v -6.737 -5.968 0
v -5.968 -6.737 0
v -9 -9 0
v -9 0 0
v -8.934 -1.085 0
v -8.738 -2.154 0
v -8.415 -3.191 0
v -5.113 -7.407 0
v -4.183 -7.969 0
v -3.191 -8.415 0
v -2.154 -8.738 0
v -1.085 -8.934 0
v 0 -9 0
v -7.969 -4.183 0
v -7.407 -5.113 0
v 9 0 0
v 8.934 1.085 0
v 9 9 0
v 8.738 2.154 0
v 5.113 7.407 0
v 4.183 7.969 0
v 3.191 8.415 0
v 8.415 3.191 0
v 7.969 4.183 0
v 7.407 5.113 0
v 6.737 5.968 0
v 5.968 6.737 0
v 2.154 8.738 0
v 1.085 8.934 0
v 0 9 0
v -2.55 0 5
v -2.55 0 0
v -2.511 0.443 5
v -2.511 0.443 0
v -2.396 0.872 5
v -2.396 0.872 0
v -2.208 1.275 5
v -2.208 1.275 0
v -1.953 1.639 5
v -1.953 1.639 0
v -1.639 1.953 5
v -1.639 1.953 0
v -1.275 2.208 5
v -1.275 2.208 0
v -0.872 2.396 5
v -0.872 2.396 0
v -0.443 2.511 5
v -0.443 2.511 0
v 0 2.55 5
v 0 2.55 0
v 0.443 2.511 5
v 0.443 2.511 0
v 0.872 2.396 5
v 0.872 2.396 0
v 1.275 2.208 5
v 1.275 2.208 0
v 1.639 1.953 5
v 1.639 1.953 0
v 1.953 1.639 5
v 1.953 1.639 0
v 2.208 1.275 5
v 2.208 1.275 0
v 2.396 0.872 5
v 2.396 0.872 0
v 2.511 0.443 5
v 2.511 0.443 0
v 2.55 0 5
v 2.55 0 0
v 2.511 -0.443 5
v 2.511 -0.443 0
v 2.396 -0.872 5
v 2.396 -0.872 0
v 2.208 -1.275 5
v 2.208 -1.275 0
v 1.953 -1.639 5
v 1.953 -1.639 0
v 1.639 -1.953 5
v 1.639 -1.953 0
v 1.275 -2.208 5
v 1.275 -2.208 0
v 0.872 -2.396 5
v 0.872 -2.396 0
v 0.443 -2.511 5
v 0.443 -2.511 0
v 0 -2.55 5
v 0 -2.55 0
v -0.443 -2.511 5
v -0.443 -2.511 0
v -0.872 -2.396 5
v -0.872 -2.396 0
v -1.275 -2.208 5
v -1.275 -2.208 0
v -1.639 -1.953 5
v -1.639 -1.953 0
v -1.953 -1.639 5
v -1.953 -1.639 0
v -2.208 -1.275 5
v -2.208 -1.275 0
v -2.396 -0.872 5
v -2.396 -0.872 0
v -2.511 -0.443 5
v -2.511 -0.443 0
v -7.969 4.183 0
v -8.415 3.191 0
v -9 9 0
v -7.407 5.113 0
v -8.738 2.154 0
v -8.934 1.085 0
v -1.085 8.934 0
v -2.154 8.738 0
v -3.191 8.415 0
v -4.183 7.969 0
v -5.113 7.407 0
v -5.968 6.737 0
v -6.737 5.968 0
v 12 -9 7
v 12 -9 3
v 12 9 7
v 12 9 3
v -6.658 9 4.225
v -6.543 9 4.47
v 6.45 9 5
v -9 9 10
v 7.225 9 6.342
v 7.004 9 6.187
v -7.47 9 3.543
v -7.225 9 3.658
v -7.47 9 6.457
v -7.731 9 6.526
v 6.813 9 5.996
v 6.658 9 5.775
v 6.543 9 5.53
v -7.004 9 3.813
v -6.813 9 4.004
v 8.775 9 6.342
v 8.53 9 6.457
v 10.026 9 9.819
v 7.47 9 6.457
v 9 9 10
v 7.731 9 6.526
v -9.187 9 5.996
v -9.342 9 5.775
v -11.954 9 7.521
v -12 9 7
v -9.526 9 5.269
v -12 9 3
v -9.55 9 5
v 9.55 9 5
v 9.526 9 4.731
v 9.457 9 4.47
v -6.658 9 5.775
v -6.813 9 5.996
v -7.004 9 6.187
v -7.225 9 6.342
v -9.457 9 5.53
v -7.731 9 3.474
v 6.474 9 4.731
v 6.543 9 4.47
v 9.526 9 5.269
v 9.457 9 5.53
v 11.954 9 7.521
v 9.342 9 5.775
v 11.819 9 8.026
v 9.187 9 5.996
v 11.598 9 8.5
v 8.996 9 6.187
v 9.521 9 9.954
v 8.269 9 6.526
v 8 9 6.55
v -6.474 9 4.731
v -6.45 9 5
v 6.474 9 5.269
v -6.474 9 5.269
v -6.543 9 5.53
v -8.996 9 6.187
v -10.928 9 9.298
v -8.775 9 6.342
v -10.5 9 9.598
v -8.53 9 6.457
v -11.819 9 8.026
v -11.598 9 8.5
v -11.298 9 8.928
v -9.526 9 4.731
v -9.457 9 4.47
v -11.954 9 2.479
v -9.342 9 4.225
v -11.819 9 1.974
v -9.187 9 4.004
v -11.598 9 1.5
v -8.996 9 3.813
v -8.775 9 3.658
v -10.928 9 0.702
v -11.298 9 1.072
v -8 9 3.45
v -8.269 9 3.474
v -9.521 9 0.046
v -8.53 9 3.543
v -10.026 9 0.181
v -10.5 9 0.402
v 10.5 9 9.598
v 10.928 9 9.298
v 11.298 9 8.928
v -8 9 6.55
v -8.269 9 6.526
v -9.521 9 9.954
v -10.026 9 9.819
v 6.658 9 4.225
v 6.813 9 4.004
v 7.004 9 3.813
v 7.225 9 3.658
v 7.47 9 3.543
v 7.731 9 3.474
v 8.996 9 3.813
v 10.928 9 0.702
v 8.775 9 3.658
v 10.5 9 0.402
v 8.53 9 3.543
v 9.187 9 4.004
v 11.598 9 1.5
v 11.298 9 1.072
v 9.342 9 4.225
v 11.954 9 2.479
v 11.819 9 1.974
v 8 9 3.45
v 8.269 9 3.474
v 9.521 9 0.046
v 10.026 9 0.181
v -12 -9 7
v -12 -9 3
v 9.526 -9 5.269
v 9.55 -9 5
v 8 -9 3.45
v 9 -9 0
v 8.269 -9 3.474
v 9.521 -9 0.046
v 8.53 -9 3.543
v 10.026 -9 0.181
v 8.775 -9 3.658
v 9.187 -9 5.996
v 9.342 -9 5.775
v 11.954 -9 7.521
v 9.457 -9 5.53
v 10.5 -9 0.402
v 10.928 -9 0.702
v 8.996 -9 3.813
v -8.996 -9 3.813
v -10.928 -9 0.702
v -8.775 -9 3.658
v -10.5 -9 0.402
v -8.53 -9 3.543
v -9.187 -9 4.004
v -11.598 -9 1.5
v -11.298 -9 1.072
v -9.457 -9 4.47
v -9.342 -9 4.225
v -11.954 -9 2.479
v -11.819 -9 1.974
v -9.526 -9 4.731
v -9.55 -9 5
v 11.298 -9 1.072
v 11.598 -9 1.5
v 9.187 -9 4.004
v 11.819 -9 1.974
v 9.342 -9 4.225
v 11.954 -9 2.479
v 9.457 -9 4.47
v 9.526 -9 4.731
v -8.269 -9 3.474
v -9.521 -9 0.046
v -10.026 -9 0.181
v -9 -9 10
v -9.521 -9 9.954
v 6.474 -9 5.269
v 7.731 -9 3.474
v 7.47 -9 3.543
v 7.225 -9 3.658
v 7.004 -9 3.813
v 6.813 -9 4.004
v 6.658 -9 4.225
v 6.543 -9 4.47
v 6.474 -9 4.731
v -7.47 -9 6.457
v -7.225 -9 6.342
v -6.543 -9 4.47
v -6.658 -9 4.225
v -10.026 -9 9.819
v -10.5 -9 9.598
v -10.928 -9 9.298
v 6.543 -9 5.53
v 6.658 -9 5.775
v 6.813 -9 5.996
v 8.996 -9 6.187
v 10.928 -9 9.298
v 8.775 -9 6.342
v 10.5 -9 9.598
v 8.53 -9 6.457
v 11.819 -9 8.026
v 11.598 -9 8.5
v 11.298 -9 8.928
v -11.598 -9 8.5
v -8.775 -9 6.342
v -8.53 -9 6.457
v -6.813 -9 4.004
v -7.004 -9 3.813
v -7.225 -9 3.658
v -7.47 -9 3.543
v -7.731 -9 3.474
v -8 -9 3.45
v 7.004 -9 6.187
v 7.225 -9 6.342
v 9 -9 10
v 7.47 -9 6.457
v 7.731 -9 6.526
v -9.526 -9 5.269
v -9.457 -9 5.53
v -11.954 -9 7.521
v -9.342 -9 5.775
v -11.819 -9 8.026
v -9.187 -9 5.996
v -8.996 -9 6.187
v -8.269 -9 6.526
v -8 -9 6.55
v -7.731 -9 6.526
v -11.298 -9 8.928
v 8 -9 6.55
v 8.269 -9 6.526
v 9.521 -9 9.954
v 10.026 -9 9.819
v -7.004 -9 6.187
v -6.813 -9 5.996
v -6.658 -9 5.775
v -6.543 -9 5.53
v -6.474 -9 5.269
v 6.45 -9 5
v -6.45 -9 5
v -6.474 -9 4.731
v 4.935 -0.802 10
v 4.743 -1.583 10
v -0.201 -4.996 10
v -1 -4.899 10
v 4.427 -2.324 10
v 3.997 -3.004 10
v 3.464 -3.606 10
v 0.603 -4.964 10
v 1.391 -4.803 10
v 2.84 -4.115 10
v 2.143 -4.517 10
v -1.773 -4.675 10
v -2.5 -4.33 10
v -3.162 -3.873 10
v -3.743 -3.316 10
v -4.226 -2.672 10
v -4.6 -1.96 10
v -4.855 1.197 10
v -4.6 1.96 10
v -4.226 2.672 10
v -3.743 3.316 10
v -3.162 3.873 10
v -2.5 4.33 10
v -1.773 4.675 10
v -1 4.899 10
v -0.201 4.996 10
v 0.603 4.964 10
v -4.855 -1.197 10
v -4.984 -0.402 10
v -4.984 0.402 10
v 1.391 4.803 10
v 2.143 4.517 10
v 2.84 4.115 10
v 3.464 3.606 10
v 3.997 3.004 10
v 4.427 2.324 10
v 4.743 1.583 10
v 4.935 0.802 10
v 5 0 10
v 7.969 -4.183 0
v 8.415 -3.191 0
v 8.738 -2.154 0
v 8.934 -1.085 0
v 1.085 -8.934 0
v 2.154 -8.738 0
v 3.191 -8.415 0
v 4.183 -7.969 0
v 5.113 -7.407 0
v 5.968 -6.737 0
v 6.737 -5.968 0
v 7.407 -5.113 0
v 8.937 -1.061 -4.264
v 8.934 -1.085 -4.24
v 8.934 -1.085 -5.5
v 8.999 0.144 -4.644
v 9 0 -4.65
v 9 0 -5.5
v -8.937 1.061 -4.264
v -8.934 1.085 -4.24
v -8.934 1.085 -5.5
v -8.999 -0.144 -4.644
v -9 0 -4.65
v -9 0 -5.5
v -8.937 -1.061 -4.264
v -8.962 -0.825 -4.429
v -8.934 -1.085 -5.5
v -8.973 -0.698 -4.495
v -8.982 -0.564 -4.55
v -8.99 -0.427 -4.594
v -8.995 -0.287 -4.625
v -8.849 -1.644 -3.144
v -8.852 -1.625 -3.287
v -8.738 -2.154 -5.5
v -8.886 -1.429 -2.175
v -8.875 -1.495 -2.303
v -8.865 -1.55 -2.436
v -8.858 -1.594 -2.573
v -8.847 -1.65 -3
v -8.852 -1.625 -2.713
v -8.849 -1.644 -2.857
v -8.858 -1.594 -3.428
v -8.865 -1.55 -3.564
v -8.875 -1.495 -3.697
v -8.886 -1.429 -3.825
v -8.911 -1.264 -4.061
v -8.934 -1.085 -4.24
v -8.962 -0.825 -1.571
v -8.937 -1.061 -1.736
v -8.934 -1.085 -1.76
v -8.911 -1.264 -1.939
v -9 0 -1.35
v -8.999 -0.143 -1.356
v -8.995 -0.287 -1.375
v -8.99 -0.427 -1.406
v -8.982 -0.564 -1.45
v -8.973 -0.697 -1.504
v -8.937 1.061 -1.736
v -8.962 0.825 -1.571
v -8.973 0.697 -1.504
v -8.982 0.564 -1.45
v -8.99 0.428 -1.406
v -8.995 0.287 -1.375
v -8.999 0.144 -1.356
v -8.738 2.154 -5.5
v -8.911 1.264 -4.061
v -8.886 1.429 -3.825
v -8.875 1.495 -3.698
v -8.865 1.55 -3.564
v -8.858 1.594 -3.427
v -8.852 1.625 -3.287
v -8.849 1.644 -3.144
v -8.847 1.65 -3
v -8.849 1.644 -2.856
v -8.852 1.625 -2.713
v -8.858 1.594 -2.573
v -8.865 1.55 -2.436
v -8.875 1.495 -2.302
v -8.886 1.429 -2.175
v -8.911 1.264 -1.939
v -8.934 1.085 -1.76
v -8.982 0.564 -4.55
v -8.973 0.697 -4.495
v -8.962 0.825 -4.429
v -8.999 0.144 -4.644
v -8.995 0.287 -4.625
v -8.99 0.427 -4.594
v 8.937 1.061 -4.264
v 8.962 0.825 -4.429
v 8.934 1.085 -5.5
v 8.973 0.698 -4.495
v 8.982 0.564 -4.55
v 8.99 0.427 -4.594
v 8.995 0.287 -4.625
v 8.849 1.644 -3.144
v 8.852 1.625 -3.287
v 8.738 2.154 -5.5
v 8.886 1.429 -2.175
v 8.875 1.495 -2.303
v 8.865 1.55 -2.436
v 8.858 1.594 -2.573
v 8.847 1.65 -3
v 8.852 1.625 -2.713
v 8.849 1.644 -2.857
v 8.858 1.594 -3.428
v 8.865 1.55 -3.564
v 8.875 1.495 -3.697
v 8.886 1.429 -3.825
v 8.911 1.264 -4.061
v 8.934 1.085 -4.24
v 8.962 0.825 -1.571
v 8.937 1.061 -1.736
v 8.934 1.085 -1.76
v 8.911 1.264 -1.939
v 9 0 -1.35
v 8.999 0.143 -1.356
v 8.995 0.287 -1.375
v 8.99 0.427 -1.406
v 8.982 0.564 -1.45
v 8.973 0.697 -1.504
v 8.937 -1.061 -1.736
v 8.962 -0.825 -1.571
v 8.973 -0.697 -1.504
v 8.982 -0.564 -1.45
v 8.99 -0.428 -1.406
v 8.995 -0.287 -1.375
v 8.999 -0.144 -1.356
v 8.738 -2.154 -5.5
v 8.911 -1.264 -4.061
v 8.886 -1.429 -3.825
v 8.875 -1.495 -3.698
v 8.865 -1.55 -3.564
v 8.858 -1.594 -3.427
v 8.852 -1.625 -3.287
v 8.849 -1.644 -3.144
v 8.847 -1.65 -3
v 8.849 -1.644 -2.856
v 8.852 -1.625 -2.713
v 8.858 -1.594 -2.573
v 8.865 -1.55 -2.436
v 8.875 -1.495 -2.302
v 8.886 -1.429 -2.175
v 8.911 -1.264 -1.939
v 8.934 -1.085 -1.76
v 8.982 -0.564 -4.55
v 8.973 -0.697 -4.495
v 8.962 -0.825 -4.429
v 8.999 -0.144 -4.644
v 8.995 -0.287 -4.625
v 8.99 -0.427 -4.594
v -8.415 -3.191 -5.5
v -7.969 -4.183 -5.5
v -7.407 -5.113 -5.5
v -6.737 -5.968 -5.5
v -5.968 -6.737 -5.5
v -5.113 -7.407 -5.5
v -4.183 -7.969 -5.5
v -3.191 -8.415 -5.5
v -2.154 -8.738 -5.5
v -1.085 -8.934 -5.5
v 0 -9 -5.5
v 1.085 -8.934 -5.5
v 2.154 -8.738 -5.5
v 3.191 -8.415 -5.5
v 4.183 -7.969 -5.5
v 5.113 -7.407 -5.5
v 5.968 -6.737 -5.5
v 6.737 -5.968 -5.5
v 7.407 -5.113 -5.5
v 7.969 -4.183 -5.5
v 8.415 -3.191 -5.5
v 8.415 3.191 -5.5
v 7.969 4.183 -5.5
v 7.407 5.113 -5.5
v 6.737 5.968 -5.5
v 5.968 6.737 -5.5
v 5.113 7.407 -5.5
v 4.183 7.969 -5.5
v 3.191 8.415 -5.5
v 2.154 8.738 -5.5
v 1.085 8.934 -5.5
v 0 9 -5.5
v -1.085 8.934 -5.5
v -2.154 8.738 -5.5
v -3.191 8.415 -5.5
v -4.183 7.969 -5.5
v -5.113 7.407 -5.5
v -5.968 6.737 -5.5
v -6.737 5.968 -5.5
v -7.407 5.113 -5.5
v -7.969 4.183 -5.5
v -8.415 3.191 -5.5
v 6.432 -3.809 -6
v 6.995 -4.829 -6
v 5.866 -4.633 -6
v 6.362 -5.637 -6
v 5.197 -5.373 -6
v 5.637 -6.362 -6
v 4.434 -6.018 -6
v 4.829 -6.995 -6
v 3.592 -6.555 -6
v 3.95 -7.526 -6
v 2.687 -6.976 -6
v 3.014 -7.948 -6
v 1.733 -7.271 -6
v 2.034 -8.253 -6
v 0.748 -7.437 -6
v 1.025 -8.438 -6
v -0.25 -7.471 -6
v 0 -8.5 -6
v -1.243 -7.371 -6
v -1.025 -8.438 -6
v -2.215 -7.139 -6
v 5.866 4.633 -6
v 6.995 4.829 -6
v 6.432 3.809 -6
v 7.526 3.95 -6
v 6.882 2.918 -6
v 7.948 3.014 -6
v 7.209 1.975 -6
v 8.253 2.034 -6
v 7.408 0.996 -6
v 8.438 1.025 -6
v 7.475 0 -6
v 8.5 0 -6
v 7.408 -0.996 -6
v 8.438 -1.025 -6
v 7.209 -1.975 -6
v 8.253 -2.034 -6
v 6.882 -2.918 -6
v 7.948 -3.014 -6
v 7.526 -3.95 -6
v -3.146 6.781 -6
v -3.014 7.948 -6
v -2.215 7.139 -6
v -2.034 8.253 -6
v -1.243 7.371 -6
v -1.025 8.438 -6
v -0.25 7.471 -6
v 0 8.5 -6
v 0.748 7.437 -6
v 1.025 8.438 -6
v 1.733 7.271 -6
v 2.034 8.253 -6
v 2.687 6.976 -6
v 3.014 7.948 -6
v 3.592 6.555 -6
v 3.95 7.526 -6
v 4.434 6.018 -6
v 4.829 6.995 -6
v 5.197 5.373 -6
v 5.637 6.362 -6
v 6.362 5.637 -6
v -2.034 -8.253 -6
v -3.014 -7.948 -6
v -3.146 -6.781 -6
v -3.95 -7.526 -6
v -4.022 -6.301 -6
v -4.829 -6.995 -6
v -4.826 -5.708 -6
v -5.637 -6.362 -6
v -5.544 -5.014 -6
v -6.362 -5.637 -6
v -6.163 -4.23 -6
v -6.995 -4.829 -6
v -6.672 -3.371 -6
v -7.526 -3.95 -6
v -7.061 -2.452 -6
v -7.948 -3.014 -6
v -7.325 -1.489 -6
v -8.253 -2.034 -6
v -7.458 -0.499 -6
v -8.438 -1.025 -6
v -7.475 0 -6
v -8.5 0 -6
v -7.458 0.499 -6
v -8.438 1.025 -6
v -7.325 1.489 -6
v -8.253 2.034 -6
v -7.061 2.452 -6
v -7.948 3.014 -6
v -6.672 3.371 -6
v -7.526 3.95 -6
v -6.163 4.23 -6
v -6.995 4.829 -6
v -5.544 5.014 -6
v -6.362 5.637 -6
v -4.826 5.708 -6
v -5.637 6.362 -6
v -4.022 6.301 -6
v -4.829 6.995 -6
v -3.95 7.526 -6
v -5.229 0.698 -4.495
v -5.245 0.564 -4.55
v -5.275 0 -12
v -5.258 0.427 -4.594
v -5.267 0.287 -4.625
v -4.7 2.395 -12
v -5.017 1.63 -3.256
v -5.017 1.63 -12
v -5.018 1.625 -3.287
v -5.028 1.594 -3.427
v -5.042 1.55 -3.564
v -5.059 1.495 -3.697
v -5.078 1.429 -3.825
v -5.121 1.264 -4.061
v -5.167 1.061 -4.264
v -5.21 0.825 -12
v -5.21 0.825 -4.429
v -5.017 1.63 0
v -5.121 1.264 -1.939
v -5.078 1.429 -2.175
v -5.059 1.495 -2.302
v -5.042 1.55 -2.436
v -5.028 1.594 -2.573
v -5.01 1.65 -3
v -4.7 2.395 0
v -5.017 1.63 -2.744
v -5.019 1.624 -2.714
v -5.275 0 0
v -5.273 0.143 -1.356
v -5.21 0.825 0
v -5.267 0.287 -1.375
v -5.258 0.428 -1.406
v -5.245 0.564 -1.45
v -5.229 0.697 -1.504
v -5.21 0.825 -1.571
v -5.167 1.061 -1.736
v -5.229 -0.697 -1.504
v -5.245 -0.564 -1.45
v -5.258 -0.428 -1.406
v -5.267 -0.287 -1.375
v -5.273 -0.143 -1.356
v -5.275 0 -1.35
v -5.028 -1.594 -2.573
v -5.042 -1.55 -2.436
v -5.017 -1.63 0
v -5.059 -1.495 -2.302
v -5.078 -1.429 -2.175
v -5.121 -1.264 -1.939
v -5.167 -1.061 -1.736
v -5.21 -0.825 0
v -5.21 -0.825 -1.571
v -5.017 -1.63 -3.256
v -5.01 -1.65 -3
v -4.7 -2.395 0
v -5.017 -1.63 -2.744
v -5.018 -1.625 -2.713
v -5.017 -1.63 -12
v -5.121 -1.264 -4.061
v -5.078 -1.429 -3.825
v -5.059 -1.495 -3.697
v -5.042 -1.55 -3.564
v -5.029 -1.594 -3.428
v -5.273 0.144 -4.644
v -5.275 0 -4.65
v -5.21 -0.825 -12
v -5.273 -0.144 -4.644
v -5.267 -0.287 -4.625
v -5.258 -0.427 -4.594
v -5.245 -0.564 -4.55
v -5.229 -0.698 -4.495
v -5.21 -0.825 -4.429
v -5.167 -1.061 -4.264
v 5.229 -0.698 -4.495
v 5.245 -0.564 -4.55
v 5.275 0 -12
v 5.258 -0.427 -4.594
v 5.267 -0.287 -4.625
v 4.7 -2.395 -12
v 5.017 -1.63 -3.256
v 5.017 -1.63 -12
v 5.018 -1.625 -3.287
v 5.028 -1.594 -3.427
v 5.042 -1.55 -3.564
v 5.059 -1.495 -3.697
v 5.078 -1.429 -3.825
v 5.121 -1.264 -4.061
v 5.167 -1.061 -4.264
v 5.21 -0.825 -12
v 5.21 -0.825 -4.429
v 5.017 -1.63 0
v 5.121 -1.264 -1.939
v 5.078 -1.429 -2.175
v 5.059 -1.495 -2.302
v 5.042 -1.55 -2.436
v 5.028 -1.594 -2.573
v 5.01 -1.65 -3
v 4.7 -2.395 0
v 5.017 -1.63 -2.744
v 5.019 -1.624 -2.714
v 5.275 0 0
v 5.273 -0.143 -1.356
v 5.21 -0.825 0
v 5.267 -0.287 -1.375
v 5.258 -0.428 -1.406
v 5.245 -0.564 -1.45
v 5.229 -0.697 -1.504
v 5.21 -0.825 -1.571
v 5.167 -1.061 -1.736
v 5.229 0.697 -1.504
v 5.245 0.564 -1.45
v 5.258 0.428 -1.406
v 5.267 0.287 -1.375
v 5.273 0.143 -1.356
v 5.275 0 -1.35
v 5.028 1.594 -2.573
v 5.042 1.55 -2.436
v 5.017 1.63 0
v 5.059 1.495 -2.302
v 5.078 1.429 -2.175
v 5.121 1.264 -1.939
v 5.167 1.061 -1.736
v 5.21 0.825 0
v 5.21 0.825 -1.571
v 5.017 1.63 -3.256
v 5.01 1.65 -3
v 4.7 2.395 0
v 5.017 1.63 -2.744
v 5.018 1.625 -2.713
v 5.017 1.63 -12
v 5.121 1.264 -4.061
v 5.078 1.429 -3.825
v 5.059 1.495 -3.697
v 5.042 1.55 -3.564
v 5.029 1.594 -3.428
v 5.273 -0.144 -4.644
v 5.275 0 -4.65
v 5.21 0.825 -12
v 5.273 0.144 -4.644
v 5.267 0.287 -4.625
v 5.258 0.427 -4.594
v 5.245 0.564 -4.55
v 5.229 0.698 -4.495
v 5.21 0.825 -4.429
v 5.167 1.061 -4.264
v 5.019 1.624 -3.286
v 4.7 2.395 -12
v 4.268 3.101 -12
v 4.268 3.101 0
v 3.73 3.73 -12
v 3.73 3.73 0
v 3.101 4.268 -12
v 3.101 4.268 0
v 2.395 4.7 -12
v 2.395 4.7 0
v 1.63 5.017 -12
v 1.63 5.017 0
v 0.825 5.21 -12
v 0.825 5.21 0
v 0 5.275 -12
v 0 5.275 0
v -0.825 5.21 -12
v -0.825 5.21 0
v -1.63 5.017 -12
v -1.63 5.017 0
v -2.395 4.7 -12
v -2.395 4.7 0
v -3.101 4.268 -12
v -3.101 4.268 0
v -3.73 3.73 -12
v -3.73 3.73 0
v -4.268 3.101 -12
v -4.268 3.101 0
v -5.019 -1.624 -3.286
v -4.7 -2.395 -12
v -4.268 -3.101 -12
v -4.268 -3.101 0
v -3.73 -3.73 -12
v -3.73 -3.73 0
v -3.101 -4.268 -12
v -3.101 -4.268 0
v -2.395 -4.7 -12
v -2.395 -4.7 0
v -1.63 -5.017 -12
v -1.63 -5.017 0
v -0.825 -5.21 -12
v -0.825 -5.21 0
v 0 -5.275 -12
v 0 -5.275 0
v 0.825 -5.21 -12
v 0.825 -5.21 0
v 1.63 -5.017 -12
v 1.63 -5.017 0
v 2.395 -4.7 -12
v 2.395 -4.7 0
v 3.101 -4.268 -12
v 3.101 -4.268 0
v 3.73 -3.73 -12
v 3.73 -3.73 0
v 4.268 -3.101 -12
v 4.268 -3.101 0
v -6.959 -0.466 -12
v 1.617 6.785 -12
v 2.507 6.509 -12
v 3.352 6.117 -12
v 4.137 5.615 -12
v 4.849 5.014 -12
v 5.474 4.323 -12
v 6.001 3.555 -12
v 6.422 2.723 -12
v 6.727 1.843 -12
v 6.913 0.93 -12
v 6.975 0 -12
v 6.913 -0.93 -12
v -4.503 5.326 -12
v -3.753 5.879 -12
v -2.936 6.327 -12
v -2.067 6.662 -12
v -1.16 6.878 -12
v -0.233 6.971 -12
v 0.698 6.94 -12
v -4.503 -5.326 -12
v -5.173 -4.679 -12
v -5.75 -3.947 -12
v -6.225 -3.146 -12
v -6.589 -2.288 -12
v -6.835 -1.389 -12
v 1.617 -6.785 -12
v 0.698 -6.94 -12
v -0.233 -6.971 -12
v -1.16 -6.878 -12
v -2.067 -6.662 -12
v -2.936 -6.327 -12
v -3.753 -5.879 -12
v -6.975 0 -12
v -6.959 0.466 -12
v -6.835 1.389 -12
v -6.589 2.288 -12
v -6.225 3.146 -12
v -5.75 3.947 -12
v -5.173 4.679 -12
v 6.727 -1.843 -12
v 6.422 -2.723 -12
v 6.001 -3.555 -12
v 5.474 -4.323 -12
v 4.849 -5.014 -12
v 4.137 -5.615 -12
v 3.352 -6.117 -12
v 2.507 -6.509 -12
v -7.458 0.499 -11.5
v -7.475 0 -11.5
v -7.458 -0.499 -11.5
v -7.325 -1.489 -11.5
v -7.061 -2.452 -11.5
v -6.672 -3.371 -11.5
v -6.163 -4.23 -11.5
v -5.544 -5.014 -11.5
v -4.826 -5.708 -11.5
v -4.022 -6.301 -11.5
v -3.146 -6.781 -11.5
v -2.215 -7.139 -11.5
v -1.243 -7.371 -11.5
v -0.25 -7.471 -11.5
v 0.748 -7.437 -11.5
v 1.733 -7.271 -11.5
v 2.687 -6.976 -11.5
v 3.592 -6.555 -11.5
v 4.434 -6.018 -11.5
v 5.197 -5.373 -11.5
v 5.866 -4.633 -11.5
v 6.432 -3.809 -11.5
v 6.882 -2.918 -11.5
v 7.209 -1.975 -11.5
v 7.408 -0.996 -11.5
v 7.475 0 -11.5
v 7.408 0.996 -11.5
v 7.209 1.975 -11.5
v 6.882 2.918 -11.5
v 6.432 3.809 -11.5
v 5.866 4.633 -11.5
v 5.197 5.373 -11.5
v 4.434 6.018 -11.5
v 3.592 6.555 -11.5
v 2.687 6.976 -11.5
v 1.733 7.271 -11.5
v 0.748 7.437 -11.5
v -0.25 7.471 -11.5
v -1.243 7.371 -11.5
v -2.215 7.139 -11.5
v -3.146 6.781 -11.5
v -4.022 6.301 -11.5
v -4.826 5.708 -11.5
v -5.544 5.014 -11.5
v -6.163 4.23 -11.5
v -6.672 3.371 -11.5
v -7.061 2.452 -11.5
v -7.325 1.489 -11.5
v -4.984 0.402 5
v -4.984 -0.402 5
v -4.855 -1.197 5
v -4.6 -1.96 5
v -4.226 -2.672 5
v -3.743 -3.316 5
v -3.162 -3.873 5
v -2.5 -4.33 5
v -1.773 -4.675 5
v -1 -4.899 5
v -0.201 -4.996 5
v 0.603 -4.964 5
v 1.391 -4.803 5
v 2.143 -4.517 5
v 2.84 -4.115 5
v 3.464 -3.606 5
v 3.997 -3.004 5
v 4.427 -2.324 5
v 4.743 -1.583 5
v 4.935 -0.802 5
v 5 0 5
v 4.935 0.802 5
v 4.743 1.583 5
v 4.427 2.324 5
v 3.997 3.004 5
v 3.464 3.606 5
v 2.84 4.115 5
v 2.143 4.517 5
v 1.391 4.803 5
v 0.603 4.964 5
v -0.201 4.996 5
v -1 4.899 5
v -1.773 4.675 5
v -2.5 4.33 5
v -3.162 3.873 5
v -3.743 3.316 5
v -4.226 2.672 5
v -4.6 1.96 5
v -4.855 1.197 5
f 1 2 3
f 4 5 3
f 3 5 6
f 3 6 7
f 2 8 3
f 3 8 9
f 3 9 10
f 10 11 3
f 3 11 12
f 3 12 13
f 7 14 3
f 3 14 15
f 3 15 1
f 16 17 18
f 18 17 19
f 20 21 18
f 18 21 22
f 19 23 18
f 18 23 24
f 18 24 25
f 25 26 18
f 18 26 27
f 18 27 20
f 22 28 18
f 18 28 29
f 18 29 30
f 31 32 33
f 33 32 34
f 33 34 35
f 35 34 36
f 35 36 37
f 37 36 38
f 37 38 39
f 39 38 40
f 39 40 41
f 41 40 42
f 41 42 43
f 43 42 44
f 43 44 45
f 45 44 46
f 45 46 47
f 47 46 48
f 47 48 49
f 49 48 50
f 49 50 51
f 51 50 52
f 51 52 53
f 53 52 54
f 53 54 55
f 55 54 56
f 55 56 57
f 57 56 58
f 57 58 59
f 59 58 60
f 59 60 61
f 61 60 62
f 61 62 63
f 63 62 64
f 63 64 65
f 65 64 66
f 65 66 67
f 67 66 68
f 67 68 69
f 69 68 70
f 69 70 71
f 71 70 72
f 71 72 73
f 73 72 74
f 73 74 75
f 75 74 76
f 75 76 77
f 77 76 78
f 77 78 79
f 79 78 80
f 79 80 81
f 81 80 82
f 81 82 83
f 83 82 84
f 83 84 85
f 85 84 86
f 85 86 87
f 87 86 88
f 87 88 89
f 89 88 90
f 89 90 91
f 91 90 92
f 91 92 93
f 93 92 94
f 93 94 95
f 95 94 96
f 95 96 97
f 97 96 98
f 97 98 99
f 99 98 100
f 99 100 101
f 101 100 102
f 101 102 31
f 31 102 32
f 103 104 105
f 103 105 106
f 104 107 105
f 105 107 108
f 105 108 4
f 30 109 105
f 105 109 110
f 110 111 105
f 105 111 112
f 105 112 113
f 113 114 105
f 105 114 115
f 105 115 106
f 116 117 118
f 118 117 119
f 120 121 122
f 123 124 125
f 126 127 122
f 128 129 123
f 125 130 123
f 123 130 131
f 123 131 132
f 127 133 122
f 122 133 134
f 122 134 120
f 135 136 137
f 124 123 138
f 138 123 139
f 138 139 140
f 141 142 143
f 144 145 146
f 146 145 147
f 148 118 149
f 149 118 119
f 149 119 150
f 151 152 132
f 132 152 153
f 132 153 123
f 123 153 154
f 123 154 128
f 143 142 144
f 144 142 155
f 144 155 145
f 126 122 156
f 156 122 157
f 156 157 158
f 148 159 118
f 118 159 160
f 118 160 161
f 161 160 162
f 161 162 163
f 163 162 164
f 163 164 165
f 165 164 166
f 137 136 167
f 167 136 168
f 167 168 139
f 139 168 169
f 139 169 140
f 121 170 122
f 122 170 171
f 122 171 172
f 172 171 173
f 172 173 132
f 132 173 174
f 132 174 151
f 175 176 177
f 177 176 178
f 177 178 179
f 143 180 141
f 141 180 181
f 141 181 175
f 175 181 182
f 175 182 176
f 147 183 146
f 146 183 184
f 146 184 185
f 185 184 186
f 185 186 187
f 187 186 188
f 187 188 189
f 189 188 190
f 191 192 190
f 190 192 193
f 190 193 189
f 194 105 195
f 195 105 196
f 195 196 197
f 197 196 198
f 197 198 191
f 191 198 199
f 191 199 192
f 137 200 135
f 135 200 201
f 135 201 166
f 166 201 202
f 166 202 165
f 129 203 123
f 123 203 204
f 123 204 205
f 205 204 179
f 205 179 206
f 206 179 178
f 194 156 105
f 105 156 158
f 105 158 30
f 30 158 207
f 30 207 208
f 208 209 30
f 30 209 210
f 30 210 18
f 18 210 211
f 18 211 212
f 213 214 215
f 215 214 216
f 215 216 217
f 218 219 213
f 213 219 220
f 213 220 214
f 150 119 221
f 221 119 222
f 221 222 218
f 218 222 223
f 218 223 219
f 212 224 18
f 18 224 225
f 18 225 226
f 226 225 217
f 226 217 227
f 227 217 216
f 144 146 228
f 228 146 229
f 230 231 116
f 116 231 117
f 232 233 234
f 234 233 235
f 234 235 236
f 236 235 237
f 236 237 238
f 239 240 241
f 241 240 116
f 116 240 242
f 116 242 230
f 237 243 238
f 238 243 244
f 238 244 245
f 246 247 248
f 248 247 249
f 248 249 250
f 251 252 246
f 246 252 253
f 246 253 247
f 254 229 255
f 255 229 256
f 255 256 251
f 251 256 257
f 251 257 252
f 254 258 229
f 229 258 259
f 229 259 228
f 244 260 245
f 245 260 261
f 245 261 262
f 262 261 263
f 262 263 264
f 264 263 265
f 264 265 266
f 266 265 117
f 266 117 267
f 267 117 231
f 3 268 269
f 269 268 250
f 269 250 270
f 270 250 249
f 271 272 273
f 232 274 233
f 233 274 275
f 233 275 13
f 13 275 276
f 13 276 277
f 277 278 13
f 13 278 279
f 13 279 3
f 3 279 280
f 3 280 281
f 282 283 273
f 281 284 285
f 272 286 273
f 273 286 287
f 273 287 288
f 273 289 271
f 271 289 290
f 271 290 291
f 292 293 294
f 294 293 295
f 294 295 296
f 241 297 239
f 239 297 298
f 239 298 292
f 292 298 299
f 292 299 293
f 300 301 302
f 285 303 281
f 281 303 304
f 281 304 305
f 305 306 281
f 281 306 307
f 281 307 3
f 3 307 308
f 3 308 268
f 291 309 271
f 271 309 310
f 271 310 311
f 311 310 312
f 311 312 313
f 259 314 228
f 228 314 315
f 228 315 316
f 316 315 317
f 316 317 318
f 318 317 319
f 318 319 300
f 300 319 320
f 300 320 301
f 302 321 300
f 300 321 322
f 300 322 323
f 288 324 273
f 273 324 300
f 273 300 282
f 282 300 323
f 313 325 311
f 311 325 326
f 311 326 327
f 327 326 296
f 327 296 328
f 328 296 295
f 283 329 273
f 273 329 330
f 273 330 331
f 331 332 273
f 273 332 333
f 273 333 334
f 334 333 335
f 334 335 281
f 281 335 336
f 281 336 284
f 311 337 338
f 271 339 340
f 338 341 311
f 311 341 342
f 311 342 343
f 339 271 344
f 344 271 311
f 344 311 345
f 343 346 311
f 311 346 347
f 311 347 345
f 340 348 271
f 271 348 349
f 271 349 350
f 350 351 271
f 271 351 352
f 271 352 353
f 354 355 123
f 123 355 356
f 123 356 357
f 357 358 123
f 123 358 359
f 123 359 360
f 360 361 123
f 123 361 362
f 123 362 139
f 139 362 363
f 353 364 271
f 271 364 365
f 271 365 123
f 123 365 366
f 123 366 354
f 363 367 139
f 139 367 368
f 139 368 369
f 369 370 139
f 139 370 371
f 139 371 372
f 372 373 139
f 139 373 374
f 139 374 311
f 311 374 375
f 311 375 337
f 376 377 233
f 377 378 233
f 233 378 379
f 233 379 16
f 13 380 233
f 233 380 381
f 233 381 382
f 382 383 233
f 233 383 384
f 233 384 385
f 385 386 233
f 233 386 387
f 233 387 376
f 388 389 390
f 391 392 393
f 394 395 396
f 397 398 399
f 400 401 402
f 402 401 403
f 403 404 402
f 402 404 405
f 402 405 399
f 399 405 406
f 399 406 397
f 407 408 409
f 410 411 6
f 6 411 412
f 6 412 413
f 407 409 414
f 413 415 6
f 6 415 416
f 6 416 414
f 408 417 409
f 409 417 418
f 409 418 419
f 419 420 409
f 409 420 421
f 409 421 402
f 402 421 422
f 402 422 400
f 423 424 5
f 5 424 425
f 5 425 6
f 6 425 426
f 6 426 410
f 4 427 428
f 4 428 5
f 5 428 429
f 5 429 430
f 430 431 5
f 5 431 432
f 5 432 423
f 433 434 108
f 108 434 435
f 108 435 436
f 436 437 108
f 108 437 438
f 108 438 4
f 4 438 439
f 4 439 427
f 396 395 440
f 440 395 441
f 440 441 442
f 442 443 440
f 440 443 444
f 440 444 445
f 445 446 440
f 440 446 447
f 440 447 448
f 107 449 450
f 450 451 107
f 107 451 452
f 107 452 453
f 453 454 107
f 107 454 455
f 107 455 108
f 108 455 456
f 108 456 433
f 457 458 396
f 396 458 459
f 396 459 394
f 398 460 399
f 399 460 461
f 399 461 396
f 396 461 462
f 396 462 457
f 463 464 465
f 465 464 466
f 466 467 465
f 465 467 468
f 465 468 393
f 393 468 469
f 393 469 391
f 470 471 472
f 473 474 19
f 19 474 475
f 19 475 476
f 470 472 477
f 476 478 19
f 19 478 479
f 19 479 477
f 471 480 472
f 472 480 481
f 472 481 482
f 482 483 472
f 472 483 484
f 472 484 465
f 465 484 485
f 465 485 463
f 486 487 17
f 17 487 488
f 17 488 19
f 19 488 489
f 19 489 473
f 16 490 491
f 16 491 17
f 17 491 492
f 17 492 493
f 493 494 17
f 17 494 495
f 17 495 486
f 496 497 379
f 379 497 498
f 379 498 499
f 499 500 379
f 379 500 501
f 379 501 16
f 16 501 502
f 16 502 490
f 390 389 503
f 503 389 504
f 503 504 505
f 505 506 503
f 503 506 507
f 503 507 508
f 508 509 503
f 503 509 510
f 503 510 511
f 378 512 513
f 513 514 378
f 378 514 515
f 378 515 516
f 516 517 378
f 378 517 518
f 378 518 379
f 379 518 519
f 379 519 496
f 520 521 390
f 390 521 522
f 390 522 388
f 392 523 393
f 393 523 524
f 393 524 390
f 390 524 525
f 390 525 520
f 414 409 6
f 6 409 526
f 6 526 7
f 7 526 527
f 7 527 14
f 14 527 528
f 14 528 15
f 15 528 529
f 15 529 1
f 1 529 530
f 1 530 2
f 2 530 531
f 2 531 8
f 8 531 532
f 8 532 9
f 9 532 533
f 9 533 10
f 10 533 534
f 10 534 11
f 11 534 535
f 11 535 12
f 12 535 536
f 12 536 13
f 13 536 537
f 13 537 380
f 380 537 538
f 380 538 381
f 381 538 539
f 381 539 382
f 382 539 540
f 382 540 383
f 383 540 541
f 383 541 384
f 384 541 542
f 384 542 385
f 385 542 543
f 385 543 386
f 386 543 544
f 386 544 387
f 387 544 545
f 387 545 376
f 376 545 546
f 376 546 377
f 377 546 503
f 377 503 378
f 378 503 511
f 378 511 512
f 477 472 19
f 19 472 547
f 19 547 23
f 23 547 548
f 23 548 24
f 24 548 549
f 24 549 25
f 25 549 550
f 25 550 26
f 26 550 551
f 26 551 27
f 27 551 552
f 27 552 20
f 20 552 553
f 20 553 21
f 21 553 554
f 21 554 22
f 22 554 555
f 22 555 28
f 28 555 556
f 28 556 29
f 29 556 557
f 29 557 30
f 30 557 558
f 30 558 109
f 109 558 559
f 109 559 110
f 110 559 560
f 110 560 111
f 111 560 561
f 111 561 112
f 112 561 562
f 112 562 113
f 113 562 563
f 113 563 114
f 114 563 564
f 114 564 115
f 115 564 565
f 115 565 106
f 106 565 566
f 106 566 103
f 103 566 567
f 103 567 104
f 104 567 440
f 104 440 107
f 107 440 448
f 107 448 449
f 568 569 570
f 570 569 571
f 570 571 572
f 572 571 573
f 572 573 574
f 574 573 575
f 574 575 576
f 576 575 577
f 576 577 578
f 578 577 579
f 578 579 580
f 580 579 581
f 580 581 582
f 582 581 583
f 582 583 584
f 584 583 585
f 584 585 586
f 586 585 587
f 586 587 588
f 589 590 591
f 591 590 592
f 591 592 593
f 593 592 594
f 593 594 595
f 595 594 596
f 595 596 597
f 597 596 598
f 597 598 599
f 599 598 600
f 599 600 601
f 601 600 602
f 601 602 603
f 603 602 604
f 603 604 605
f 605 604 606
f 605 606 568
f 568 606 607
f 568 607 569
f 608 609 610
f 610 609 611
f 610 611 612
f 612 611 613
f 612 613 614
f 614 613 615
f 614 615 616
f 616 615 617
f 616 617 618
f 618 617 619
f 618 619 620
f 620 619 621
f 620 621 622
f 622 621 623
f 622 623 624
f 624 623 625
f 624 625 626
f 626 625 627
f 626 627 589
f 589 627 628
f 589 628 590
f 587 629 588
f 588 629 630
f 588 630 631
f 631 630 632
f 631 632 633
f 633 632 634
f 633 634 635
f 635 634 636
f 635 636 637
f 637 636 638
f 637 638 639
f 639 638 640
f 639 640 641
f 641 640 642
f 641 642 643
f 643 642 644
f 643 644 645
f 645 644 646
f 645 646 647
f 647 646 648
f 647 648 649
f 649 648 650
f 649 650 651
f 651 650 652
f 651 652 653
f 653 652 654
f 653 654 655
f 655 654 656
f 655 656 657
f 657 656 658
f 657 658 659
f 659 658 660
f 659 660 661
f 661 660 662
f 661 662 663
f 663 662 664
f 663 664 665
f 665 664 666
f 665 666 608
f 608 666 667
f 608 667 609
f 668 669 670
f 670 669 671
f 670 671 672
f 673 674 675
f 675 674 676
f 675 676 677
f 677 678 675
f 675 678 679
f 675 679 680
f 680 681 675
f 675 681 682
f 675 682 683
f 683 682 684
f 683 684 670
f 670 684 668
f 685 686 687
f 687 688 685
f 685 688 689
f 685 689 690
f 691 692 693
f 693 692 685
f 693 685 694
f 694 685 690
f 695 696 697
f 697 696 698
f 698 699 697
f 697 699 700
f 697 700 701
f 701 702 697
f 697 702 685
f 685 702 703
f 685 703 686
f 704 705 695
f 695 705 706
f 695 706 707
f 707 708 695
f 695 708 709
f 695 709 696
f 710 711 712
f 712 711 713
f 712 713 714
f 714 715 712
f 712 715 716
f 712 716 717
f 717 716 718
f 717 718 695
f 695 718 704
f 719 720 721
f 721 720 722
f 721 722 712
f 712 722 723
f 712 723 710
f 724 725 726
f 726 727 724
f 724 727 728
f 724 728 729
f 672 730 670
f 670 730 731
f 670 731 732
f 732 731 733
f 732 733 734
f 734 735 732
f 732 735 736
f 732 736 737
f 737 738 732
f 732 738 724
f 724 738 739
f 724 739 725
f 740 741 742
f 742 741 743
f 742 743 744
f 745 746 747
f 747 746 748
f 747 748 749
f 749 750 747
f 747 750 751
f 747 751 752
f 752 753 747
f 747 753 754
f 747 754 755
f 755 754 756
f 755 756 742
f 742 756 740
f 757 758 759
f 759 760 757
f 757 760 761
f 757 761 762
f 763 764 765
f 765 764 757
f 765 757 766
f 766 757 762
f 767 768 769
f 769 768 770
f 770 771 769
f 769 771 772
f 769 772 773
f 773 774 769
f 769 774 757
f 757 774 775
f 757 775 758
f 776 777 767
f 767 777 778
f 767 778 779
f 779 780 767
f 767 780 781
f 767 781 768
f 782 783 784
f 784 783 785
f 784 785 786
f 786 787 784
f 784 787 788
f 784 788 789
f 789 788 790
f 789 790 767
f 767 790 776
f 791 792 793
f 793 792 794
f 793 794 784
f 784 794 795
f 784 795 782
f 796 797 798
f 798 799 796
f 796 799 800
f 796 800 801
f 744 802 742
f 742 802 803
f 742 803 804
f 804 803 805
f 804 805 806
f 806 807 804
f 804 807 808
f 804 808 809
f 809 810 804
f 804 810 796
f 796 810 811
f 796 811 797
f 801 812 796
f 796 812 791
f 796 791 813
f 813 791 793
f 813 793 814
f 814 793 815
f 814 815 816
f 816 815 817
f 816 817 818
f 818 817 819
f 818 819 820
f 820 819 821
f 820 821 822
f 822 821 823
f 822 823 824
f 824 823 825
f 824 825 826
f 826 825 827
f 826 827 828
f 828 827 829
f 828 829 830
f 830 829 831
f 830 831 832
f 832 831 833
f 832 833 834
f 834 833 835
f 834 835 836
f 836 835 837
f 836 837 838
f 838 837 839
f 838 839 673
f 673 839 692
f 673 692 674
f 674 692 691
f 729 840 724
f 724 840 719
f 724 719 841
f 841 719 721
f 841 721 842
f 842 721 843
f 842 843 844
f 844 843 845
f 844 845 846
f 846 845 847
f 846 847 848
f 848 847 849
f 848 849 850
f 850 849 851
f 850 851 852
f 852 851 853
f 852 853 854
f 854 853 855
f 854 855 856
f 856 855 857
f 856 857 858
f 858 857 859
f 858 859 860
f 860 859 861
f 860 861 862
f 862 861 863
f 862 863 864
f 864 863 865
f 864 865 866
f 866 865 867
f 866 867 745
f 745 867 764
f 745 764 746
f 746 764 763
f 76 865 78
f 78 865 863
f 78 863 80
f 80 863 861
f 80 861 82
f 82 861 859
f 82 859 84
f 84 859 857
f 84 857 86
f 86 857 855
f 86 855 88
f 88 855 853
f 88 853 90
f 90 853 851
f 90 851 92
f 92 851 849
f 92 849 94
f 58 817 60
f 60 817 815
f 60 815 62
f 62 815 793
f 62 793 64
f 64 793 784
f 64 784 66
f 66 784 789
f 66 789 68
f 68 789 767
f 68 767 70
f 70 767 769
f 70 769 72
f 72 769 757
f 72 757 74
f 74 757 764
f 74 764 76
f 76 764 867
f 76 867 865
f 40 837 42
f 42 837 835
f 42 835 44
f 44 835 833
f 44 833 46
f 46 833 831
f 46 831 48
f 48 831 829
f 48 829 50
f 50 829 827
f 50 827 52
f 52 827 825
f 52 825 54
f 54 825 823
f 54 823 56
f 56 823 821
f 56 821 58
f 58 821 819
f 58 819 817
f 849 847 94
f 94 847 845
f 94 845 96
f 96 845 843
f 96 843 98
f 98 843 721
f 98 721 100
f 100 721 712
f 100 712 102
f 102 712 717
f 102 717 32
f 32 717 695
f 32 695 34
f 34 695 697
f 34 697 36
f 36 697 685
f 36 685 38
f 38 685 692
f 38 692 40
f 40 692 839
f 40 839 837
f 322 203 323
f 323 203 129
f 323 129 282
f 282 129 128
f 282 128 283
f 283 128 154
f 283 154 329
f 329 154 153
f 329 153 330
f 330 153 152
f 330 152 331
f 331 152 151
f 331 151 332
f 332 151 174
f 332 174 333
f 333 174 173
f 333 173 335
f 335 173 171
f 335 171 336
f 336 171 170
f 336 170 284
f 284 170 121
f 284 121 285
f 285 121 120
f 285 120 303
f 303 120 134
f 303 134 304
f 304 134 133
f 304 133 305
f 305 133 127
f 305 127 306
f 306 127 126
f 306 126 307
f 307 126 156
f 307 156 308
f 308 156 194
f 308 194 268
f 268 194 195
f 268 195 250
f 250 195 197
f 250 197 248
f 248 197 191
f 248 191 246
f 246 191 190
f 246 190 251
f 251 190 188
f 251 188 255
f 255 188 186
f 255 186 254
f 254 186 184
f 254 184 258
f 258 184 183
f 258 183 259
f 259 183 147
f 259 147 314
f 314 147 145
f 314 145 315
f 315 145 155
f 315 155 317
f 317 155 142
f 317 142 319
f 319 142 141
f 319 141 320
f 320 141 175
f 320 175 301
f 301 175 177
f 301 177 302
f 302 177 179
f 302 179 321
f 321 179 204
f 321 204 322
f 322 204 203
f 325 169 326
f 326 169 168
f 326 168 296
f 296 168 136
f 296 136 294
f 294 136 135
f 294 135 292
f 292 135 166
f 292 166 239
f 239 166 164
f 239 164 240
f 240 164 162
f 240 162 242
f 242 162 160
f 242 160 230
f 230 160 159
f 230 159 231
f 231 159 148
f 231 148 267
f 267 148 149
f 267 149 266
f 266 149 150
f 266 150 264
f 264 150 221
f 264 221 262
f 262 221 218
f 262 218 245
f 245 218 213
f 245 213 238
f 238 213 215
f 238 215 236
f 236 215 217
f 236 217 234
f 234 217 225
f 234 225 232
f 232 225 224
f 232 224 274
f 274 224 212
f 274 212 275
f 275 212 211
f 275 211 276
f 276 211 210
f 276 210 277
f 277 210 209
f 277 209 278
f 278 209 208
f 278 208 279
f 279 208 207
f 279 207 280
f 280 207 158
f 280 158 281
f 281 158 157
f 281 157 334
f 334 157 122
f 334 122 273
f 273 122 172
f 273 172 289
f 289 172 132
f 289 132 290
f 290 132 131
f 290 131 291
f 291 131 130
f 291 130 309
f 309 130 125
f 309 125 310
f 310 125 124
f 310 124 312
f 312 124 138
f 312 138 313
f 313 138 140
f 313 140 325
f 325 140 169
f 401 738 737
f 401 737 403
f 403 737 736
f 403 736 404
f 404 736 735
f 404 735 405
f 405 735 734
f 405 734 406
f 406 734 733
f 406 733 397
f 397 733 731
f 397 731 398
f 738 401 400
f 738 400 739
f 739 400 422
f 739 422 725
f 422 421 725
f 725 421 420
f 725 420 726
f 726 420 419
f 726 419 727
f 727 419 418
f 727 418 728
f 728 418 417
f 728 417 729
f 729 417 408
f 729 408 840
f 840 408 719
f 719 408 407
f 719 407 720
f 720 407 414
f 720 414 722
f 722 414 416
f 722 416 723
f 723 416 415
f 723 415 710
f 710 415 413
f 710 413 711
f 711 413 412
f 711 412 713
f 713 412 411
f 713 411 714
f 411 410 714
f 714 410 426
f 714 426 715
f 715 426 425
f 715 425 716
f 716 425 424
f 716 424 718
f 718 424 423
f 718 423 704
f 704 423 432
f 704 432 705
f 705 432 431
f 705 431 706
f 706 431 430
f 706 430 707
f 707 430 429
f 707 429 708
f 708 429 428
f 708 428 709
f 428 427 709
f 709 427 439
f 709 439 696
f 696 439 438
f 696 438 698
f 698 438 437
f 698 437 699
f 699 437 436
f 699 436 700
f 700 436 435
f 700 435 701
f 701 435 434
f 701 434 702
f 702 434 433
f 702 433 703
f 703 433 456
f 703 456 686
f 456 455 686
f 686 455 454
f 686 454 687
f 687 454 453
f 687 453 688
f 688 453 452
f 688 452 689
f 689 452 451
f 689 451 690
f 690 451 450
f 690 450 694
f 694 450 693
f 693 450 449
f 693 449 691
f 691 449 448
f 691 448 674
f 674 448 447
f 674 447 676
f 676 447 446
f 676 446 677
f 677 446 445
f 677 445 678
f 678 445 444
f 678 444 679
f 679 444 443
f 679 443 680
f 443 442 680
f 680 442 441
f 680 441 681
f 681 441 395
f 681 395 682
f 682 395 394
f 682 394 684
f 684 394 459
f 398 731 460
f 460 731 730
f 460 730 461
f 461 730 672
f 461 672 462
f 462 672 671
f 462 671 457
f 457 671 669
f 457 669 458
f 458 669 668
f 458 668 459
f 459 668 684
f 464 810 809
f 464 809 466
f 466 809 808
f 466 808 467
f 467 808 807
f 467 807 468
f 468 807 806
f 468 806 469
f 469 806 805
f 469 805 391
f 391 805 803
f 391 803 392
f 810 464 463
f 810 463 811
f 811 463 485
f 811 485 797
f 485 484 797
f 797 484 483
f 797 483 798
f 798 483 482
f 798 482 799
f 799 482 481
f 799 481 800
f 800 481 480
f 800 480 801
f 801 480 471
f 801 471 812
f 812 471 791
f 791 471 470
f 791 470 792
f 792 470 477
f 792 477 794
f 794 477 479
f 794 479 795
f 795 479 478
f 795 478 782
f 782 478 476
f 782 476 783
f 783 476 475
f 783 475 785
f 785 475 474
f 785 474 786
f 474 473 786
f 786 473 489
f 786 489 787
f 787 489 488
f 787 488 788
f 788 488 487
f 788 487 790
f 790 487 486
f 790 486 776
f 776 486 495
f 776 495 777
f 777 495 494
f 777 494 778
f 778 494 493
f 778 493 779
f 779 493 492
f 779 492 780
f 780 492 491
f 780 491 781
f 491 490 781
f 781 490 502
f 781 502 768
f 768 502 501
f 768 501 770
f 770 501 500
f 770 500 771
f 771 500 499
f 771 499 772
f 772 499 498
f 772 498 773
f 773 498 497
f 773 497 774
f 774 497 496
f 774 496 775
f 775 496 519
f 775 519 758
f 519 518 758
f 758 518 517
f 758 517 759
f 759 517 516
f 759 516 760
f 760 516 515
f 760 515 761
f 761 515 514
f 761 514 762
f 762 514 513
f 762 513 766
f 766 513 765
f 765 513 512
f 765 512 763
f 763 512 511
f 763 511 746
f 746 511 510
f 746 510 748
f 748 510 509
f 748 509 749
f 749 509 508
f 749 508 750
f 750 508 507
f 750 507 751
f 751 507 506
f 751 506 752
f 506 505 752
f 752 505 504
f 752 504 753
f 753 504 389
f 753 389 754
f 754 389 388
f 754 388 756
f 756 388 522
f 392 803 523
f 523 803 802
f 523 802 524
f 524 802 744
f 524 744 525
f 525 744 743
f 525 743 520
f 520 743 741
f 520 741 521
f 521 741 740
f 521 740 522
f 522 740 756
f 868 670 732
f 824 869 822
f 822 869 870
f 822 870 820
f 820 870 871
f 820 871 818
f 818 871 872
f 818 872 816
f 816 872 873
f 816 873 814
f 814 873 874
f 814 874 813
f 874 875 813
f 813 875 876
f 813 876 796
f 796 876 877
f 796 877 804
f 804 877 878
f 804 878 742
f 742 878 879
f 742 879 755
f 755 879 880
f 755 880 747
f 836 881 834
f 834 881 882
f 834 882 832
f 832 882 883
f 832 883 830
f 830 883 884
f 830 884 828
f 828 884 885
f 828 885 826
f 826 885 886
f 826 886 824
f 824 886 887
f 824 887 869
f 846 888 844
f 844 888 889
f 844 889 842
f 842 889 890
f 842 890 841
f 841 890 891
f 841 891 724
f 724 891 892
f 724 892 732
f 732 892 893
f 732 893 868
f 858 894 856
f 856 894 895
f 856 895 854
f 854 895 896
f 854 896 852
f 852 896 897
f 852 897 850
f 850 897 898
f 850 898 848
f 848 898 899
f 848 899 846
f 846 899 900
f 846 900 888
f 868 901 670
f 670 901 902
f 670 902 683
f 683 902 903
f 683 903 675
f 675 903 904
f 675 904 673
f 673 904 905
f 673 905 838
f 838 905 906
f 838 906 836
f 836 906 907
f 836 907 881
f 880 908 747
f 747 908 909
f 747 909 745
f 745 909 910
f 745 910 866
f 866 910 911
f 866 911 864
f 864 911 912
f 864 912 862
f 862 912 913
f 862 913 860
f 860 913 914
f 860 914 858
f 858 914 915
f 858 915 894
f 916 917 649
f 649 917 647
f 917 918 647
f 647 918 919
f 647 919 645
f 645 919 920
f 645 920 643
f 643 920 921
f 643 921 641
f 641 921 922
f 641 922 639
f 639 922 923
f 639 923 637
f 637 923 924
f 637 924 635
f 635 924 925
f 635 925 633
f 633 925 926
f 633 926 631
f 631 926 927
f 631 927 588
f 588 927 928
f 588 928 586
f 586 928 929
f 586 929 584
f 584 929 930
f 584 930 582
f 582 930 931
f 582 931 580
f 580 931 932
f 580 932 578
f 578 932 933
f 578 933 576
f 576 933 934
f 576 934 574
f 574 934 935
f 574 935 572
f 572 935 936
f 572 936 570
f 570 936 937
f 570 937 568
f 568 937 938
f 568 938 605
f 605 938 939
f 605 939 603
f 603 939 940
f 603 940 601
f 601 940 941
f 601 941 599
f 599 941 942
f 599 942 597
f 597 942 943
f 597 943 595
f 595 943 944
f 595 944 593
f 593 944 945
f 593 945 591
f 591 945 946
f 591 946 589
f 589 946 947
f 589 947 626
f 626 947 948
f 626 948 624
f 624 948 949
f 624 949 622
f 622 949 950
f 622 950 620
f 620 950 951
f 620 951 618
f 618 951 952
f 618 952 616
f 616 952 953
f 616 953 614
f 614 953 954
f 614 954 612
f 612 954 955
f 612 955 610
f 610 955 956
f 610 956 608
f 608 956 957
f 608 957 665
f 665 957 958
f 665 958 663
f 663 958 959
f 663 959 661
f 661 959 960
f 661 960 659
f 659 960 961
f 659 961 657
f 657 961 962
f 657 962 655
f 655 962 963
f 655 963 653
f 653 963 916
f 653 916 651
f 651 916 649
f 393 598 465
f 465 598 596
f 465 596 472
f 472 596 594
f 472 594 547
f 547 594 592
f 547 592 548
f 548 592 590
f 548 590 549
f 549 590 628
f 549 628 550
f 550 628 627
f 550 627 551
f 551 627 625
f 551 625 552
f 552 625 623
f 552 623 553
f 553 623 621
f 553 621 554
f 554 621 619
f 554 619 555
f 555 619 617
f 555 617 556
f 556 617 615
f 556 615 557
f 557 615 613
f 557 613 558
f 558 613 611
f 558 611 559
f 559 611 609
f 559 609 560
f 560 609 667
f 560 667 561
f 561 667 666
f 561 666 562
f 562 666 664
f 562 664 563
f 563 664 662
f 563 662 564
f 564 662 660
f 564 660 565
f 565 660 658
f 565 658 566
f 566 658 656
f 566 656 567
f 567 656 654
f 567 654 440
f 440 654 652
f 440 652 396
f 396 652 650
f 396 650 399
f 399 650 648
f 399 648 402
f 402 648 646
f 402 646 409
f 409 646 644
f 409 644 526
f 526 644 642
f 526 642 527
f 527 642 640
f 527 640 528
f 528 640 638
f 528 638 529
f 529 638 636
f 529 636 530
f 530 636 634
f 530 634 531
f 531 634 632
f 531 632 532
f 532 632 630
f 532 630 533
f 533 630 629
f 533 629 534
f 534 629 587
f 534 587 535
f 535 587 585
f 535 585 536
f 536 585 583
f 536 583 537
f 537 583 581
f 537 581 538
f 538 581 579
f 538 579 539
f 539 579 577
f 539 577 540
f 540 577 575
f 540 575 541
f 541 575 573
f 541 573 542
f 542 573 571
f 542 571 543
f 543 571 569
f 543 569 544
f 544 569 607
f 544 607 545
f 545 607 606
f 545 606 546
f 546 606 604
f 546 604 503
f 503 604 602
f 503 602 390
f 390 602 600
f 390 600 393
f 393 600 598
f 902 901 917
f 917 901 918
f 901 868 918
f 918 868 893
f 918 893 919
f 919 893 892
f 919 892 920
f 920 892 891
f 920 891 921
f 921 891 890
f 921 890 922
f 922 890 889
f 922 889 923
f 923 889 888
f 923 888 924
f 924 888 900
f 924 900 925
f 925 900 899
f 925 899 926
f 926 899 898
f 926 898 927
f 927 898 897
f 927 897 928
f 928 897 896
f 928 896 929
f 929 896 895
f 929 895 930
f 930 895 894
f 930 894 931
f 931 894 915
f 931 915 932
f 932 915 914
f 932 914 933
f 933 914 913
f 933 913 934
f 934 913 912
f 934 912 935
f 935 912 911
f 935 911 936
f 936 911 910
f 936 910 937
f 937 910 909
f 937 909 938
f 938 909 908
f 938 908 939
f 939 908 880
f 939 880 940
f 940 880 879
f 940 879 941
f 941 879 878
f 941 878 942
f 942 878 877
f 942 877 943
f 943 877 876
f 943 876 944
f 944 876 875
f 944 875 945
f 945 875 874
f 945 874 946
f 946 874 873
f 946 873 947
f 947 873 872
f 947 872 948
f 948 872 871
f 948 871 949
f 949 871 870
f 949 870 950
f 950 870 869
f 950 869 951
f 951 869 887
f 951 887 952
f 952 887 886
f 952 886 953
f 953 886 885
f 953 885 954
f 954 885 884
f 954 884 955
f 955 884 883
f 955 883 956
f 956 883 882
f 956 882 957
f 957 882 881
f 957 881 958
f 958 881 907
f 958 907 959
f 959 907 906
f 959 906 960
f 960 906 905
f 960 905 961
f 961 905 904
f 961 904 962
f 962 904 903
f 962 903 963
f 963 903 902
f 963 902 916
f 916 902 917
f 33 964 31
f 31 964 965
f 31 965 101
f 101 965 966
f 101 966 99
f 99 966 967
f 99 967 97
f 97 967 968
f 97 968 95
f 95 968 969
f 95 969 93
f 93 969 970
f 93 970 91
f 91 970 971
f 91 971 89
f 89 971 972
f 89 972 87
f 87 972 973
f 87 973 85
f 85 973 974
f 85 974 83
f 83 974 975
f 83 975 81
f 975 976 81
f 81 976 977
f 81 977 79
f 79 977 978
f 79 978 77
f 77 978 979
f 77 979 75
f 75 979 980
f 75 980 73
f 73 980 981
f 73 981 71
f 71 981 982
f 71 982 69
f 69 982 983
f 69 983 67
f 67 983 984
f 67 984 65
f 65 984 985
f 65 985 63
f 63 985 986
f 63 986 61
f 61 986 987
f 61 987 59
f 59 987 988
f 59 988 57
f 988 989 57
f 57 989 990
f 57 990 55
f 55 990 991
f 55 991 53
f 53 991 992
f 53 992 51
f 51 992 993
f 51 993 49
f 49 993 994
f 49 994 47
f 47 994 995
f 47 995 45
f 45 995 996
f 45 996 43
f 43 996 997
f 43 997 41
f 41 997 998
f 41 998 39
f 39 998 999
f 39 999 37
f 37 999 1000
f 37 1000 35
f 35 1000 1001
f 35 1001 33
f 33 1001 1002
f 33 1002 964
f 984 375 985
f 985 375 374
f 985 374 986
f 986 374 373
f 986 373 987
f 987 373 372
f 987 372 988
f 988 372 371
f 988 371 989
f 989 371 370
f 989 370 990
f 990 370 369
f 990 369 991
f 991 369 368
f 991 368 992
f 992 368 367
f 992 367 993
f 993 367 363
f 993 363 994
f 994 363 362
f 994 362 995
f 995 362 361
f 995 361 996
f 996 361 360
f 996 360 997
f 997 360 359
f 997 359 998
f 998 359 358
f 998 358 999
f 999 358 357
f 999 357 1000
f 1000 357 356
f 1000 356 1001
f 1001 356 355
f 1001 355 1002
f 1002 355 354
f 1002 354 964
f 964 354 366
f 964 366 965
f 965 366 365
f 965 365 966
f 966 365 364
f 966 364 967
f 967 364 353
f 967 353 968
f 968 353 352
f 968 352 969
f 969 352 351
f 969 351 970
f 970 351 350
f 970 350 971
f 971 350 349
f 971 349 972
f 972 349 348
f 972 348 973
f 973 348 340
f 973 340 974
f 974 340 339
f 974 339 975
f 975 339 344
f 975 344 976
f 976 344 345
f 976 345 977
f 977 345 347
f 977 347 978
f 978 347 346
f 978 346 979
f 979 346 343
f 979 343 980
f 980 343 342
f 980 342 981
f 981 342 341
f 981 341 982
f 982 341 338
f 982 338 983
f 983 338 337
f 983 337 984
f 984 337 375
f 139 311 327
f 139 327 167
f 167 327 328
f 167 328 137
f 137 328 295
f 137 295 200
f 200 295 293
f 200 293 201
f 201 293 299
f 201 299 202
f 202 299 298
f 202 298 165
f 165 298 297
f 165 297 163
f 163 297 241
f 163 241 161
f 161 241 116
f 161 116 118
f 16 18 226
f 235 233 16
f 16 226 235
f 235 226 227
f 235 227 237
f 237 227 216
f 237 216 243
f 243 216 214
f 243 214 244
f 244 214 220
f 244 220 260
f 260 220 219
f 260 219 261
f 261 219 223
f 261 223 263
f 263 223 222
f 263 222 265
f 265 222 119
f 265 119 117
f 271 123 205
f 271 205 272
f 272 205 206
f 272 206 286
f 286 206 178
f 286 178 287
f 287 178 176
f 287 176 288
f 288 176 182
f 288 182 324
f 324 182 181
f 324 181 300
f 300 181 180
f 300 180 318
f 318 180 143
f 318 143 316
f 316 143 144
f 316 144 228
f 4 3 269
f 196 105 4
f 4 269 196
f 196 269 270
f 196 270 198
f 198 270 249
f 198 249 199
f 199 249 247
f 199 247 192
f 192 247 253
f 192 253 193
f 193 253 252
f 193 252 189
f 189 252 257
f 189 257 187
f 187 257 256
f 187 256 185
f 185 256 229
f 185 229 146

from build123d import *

# Parameters (mm, degrees)
SKETCH_1_W            = 24
SKETCH_1_H            = 18
EXTRUDE_1_DEPTH       = 10
SKETCH_2_R            = 9
SKETCH_2_R_2          = 5.275
EXTRUDE_2_DEPTH       = 6
SKETCH_3_R            = 2.55
CUT_EXTRUDE_1_DEPTH   = 41
SKETCH_4_R            = 1.55
CUT_EXTRUDE_2_DEPTH   = 37.013519789
M4_TAPPED_HOLE1_D     = 3.3
M4_TAPPED_HOLE1_DEPTH = 23.5
M4_TAPPED_HOLE1_TIP   = 0.991420021
SKETCH2_R             = 7.475
SKETCH2_R_2           = 5.275
BOSS_EXTRUDE1_DEPTH   = 6
CHAMFER1_SIZE         = 0.5
SKETCH3_R             = 5
CUT_EXTRUDE1_DEPTH    = 5
FILLET1_R             = 3


with BuildPart() as part:
    # 草图1 → 凸台-拉伸1 (new body)
    with BuildSketch(Plane.XY):
        Rectangle(SKETCH_1_W, SKETCH_1_H)
    extrude(amount=EXTRUDE_1_DEPTH)

    # 草图2 → 凸台-拉伸2 (add)
    with BuildSketch(Plane.XY):
        Circle(SKETCH_2_R)
        Circle(SKETCH_2_R_2, mode=Mode.SUBTRACT)
    extrude(amount=-EXTRUDE_2_DEPTH)

    # 草图3 → 切除-拉伸1 (cut)
    with BuildSketch(Plane(origin=(0, 0, 0), x_dir=(-1, 0, 0), z_dir=(0, 0, -1))):
        Circle(SKETCH_3_R)
    extrude(amount=-CUT_EXTRUDE_1_DEPTH, mode=Mode.SUBTRACT)

    # 草图4 → 切除-拉伸2 (cut)
    with BuildSketch(Plane(origin=(0, 9, 0), x_dir=(1, 0, 0), z_dir=(0, 1, 0))):
        with Locations(Location((-8, -5, 0), (0, 0, 270))):
            Circle(SKETCH_4_R)
        with Locations(Location((8, -5, 0), (0, 0, 270))):
            Circle(SKETCH_4_R)
    extrude(amount=-CUT_EXTRUDE_2_DEPTH, mode=Mode.SUBTRACT)

    # M4 Tapped Hole1
    with Locations(Plane(origin=(9, 0, 0), x_dir=(0, 0, -1), z_dir=(1, 0, 0))):
        with Locations((3, 0)):
            Hole(M4_TAPPED_HOLE1_D / 2, depth=M4_TAPPED_HOLE1_DEPTH)
            with Locations((0, 0, -(M4_TAPPED_HOLE1_DEPTH + M4_TAPPED_HOLE1_TIP / 2))):  # 118° drill point
                Cone(0, M4_TAPPED_HOLE1_D / 2, M4_TAPPED_HOLE1_TIP, mode=Mode.SUBTRACT)

    # Sketch2 → Boss-Extrude1 (add)
    with BuildSketch(Plane(origin=(0, 0, -6), x_dir=(-1, 0, 0), z_dir=(0, 0, -1))):
        Circle(SKETCH2_R)
        with Locations(Location((0, 0, 0), (0, 0, 180))):
            Circle(SKETCH2_R_2, mode=Mode.SUBTRACT)
    extrude(amount=BOSS_EXTRUDE1_DEPTH)

    # Chamfer1
    chamfer1_edges = [part.edges().sort_by_distance(p)[0] for p in [
        (-9, 0, -6),
        (7.475, 0, -12),
    ]]
    chamfer(chamfer1_edges, length=CHAMFER1_SIZE)

    # Sketch3 → Cut-Extrude1 (cut)
    with BuildSketch(Plane.XY.offset(10)):
        Circle(SKETCH3_R)
    extrude(amount=-CUT_EXTRUDE1_DEPTH, mode=Mode.SUBTRACT)

    # Fillet1
    fillet1_edges = [part.edges().sort_by_distance(p)[0] for p in [
        (-12, 0, 10),
        (12, 0, 10),
        (-12, 0, 0),
        (12, 0, 0),
    ]]
    fillet(fillet1_edges, radius=FILLET1_R - 0.0001)  # a hair under: the kernel refuses the full size


solid = part.part
